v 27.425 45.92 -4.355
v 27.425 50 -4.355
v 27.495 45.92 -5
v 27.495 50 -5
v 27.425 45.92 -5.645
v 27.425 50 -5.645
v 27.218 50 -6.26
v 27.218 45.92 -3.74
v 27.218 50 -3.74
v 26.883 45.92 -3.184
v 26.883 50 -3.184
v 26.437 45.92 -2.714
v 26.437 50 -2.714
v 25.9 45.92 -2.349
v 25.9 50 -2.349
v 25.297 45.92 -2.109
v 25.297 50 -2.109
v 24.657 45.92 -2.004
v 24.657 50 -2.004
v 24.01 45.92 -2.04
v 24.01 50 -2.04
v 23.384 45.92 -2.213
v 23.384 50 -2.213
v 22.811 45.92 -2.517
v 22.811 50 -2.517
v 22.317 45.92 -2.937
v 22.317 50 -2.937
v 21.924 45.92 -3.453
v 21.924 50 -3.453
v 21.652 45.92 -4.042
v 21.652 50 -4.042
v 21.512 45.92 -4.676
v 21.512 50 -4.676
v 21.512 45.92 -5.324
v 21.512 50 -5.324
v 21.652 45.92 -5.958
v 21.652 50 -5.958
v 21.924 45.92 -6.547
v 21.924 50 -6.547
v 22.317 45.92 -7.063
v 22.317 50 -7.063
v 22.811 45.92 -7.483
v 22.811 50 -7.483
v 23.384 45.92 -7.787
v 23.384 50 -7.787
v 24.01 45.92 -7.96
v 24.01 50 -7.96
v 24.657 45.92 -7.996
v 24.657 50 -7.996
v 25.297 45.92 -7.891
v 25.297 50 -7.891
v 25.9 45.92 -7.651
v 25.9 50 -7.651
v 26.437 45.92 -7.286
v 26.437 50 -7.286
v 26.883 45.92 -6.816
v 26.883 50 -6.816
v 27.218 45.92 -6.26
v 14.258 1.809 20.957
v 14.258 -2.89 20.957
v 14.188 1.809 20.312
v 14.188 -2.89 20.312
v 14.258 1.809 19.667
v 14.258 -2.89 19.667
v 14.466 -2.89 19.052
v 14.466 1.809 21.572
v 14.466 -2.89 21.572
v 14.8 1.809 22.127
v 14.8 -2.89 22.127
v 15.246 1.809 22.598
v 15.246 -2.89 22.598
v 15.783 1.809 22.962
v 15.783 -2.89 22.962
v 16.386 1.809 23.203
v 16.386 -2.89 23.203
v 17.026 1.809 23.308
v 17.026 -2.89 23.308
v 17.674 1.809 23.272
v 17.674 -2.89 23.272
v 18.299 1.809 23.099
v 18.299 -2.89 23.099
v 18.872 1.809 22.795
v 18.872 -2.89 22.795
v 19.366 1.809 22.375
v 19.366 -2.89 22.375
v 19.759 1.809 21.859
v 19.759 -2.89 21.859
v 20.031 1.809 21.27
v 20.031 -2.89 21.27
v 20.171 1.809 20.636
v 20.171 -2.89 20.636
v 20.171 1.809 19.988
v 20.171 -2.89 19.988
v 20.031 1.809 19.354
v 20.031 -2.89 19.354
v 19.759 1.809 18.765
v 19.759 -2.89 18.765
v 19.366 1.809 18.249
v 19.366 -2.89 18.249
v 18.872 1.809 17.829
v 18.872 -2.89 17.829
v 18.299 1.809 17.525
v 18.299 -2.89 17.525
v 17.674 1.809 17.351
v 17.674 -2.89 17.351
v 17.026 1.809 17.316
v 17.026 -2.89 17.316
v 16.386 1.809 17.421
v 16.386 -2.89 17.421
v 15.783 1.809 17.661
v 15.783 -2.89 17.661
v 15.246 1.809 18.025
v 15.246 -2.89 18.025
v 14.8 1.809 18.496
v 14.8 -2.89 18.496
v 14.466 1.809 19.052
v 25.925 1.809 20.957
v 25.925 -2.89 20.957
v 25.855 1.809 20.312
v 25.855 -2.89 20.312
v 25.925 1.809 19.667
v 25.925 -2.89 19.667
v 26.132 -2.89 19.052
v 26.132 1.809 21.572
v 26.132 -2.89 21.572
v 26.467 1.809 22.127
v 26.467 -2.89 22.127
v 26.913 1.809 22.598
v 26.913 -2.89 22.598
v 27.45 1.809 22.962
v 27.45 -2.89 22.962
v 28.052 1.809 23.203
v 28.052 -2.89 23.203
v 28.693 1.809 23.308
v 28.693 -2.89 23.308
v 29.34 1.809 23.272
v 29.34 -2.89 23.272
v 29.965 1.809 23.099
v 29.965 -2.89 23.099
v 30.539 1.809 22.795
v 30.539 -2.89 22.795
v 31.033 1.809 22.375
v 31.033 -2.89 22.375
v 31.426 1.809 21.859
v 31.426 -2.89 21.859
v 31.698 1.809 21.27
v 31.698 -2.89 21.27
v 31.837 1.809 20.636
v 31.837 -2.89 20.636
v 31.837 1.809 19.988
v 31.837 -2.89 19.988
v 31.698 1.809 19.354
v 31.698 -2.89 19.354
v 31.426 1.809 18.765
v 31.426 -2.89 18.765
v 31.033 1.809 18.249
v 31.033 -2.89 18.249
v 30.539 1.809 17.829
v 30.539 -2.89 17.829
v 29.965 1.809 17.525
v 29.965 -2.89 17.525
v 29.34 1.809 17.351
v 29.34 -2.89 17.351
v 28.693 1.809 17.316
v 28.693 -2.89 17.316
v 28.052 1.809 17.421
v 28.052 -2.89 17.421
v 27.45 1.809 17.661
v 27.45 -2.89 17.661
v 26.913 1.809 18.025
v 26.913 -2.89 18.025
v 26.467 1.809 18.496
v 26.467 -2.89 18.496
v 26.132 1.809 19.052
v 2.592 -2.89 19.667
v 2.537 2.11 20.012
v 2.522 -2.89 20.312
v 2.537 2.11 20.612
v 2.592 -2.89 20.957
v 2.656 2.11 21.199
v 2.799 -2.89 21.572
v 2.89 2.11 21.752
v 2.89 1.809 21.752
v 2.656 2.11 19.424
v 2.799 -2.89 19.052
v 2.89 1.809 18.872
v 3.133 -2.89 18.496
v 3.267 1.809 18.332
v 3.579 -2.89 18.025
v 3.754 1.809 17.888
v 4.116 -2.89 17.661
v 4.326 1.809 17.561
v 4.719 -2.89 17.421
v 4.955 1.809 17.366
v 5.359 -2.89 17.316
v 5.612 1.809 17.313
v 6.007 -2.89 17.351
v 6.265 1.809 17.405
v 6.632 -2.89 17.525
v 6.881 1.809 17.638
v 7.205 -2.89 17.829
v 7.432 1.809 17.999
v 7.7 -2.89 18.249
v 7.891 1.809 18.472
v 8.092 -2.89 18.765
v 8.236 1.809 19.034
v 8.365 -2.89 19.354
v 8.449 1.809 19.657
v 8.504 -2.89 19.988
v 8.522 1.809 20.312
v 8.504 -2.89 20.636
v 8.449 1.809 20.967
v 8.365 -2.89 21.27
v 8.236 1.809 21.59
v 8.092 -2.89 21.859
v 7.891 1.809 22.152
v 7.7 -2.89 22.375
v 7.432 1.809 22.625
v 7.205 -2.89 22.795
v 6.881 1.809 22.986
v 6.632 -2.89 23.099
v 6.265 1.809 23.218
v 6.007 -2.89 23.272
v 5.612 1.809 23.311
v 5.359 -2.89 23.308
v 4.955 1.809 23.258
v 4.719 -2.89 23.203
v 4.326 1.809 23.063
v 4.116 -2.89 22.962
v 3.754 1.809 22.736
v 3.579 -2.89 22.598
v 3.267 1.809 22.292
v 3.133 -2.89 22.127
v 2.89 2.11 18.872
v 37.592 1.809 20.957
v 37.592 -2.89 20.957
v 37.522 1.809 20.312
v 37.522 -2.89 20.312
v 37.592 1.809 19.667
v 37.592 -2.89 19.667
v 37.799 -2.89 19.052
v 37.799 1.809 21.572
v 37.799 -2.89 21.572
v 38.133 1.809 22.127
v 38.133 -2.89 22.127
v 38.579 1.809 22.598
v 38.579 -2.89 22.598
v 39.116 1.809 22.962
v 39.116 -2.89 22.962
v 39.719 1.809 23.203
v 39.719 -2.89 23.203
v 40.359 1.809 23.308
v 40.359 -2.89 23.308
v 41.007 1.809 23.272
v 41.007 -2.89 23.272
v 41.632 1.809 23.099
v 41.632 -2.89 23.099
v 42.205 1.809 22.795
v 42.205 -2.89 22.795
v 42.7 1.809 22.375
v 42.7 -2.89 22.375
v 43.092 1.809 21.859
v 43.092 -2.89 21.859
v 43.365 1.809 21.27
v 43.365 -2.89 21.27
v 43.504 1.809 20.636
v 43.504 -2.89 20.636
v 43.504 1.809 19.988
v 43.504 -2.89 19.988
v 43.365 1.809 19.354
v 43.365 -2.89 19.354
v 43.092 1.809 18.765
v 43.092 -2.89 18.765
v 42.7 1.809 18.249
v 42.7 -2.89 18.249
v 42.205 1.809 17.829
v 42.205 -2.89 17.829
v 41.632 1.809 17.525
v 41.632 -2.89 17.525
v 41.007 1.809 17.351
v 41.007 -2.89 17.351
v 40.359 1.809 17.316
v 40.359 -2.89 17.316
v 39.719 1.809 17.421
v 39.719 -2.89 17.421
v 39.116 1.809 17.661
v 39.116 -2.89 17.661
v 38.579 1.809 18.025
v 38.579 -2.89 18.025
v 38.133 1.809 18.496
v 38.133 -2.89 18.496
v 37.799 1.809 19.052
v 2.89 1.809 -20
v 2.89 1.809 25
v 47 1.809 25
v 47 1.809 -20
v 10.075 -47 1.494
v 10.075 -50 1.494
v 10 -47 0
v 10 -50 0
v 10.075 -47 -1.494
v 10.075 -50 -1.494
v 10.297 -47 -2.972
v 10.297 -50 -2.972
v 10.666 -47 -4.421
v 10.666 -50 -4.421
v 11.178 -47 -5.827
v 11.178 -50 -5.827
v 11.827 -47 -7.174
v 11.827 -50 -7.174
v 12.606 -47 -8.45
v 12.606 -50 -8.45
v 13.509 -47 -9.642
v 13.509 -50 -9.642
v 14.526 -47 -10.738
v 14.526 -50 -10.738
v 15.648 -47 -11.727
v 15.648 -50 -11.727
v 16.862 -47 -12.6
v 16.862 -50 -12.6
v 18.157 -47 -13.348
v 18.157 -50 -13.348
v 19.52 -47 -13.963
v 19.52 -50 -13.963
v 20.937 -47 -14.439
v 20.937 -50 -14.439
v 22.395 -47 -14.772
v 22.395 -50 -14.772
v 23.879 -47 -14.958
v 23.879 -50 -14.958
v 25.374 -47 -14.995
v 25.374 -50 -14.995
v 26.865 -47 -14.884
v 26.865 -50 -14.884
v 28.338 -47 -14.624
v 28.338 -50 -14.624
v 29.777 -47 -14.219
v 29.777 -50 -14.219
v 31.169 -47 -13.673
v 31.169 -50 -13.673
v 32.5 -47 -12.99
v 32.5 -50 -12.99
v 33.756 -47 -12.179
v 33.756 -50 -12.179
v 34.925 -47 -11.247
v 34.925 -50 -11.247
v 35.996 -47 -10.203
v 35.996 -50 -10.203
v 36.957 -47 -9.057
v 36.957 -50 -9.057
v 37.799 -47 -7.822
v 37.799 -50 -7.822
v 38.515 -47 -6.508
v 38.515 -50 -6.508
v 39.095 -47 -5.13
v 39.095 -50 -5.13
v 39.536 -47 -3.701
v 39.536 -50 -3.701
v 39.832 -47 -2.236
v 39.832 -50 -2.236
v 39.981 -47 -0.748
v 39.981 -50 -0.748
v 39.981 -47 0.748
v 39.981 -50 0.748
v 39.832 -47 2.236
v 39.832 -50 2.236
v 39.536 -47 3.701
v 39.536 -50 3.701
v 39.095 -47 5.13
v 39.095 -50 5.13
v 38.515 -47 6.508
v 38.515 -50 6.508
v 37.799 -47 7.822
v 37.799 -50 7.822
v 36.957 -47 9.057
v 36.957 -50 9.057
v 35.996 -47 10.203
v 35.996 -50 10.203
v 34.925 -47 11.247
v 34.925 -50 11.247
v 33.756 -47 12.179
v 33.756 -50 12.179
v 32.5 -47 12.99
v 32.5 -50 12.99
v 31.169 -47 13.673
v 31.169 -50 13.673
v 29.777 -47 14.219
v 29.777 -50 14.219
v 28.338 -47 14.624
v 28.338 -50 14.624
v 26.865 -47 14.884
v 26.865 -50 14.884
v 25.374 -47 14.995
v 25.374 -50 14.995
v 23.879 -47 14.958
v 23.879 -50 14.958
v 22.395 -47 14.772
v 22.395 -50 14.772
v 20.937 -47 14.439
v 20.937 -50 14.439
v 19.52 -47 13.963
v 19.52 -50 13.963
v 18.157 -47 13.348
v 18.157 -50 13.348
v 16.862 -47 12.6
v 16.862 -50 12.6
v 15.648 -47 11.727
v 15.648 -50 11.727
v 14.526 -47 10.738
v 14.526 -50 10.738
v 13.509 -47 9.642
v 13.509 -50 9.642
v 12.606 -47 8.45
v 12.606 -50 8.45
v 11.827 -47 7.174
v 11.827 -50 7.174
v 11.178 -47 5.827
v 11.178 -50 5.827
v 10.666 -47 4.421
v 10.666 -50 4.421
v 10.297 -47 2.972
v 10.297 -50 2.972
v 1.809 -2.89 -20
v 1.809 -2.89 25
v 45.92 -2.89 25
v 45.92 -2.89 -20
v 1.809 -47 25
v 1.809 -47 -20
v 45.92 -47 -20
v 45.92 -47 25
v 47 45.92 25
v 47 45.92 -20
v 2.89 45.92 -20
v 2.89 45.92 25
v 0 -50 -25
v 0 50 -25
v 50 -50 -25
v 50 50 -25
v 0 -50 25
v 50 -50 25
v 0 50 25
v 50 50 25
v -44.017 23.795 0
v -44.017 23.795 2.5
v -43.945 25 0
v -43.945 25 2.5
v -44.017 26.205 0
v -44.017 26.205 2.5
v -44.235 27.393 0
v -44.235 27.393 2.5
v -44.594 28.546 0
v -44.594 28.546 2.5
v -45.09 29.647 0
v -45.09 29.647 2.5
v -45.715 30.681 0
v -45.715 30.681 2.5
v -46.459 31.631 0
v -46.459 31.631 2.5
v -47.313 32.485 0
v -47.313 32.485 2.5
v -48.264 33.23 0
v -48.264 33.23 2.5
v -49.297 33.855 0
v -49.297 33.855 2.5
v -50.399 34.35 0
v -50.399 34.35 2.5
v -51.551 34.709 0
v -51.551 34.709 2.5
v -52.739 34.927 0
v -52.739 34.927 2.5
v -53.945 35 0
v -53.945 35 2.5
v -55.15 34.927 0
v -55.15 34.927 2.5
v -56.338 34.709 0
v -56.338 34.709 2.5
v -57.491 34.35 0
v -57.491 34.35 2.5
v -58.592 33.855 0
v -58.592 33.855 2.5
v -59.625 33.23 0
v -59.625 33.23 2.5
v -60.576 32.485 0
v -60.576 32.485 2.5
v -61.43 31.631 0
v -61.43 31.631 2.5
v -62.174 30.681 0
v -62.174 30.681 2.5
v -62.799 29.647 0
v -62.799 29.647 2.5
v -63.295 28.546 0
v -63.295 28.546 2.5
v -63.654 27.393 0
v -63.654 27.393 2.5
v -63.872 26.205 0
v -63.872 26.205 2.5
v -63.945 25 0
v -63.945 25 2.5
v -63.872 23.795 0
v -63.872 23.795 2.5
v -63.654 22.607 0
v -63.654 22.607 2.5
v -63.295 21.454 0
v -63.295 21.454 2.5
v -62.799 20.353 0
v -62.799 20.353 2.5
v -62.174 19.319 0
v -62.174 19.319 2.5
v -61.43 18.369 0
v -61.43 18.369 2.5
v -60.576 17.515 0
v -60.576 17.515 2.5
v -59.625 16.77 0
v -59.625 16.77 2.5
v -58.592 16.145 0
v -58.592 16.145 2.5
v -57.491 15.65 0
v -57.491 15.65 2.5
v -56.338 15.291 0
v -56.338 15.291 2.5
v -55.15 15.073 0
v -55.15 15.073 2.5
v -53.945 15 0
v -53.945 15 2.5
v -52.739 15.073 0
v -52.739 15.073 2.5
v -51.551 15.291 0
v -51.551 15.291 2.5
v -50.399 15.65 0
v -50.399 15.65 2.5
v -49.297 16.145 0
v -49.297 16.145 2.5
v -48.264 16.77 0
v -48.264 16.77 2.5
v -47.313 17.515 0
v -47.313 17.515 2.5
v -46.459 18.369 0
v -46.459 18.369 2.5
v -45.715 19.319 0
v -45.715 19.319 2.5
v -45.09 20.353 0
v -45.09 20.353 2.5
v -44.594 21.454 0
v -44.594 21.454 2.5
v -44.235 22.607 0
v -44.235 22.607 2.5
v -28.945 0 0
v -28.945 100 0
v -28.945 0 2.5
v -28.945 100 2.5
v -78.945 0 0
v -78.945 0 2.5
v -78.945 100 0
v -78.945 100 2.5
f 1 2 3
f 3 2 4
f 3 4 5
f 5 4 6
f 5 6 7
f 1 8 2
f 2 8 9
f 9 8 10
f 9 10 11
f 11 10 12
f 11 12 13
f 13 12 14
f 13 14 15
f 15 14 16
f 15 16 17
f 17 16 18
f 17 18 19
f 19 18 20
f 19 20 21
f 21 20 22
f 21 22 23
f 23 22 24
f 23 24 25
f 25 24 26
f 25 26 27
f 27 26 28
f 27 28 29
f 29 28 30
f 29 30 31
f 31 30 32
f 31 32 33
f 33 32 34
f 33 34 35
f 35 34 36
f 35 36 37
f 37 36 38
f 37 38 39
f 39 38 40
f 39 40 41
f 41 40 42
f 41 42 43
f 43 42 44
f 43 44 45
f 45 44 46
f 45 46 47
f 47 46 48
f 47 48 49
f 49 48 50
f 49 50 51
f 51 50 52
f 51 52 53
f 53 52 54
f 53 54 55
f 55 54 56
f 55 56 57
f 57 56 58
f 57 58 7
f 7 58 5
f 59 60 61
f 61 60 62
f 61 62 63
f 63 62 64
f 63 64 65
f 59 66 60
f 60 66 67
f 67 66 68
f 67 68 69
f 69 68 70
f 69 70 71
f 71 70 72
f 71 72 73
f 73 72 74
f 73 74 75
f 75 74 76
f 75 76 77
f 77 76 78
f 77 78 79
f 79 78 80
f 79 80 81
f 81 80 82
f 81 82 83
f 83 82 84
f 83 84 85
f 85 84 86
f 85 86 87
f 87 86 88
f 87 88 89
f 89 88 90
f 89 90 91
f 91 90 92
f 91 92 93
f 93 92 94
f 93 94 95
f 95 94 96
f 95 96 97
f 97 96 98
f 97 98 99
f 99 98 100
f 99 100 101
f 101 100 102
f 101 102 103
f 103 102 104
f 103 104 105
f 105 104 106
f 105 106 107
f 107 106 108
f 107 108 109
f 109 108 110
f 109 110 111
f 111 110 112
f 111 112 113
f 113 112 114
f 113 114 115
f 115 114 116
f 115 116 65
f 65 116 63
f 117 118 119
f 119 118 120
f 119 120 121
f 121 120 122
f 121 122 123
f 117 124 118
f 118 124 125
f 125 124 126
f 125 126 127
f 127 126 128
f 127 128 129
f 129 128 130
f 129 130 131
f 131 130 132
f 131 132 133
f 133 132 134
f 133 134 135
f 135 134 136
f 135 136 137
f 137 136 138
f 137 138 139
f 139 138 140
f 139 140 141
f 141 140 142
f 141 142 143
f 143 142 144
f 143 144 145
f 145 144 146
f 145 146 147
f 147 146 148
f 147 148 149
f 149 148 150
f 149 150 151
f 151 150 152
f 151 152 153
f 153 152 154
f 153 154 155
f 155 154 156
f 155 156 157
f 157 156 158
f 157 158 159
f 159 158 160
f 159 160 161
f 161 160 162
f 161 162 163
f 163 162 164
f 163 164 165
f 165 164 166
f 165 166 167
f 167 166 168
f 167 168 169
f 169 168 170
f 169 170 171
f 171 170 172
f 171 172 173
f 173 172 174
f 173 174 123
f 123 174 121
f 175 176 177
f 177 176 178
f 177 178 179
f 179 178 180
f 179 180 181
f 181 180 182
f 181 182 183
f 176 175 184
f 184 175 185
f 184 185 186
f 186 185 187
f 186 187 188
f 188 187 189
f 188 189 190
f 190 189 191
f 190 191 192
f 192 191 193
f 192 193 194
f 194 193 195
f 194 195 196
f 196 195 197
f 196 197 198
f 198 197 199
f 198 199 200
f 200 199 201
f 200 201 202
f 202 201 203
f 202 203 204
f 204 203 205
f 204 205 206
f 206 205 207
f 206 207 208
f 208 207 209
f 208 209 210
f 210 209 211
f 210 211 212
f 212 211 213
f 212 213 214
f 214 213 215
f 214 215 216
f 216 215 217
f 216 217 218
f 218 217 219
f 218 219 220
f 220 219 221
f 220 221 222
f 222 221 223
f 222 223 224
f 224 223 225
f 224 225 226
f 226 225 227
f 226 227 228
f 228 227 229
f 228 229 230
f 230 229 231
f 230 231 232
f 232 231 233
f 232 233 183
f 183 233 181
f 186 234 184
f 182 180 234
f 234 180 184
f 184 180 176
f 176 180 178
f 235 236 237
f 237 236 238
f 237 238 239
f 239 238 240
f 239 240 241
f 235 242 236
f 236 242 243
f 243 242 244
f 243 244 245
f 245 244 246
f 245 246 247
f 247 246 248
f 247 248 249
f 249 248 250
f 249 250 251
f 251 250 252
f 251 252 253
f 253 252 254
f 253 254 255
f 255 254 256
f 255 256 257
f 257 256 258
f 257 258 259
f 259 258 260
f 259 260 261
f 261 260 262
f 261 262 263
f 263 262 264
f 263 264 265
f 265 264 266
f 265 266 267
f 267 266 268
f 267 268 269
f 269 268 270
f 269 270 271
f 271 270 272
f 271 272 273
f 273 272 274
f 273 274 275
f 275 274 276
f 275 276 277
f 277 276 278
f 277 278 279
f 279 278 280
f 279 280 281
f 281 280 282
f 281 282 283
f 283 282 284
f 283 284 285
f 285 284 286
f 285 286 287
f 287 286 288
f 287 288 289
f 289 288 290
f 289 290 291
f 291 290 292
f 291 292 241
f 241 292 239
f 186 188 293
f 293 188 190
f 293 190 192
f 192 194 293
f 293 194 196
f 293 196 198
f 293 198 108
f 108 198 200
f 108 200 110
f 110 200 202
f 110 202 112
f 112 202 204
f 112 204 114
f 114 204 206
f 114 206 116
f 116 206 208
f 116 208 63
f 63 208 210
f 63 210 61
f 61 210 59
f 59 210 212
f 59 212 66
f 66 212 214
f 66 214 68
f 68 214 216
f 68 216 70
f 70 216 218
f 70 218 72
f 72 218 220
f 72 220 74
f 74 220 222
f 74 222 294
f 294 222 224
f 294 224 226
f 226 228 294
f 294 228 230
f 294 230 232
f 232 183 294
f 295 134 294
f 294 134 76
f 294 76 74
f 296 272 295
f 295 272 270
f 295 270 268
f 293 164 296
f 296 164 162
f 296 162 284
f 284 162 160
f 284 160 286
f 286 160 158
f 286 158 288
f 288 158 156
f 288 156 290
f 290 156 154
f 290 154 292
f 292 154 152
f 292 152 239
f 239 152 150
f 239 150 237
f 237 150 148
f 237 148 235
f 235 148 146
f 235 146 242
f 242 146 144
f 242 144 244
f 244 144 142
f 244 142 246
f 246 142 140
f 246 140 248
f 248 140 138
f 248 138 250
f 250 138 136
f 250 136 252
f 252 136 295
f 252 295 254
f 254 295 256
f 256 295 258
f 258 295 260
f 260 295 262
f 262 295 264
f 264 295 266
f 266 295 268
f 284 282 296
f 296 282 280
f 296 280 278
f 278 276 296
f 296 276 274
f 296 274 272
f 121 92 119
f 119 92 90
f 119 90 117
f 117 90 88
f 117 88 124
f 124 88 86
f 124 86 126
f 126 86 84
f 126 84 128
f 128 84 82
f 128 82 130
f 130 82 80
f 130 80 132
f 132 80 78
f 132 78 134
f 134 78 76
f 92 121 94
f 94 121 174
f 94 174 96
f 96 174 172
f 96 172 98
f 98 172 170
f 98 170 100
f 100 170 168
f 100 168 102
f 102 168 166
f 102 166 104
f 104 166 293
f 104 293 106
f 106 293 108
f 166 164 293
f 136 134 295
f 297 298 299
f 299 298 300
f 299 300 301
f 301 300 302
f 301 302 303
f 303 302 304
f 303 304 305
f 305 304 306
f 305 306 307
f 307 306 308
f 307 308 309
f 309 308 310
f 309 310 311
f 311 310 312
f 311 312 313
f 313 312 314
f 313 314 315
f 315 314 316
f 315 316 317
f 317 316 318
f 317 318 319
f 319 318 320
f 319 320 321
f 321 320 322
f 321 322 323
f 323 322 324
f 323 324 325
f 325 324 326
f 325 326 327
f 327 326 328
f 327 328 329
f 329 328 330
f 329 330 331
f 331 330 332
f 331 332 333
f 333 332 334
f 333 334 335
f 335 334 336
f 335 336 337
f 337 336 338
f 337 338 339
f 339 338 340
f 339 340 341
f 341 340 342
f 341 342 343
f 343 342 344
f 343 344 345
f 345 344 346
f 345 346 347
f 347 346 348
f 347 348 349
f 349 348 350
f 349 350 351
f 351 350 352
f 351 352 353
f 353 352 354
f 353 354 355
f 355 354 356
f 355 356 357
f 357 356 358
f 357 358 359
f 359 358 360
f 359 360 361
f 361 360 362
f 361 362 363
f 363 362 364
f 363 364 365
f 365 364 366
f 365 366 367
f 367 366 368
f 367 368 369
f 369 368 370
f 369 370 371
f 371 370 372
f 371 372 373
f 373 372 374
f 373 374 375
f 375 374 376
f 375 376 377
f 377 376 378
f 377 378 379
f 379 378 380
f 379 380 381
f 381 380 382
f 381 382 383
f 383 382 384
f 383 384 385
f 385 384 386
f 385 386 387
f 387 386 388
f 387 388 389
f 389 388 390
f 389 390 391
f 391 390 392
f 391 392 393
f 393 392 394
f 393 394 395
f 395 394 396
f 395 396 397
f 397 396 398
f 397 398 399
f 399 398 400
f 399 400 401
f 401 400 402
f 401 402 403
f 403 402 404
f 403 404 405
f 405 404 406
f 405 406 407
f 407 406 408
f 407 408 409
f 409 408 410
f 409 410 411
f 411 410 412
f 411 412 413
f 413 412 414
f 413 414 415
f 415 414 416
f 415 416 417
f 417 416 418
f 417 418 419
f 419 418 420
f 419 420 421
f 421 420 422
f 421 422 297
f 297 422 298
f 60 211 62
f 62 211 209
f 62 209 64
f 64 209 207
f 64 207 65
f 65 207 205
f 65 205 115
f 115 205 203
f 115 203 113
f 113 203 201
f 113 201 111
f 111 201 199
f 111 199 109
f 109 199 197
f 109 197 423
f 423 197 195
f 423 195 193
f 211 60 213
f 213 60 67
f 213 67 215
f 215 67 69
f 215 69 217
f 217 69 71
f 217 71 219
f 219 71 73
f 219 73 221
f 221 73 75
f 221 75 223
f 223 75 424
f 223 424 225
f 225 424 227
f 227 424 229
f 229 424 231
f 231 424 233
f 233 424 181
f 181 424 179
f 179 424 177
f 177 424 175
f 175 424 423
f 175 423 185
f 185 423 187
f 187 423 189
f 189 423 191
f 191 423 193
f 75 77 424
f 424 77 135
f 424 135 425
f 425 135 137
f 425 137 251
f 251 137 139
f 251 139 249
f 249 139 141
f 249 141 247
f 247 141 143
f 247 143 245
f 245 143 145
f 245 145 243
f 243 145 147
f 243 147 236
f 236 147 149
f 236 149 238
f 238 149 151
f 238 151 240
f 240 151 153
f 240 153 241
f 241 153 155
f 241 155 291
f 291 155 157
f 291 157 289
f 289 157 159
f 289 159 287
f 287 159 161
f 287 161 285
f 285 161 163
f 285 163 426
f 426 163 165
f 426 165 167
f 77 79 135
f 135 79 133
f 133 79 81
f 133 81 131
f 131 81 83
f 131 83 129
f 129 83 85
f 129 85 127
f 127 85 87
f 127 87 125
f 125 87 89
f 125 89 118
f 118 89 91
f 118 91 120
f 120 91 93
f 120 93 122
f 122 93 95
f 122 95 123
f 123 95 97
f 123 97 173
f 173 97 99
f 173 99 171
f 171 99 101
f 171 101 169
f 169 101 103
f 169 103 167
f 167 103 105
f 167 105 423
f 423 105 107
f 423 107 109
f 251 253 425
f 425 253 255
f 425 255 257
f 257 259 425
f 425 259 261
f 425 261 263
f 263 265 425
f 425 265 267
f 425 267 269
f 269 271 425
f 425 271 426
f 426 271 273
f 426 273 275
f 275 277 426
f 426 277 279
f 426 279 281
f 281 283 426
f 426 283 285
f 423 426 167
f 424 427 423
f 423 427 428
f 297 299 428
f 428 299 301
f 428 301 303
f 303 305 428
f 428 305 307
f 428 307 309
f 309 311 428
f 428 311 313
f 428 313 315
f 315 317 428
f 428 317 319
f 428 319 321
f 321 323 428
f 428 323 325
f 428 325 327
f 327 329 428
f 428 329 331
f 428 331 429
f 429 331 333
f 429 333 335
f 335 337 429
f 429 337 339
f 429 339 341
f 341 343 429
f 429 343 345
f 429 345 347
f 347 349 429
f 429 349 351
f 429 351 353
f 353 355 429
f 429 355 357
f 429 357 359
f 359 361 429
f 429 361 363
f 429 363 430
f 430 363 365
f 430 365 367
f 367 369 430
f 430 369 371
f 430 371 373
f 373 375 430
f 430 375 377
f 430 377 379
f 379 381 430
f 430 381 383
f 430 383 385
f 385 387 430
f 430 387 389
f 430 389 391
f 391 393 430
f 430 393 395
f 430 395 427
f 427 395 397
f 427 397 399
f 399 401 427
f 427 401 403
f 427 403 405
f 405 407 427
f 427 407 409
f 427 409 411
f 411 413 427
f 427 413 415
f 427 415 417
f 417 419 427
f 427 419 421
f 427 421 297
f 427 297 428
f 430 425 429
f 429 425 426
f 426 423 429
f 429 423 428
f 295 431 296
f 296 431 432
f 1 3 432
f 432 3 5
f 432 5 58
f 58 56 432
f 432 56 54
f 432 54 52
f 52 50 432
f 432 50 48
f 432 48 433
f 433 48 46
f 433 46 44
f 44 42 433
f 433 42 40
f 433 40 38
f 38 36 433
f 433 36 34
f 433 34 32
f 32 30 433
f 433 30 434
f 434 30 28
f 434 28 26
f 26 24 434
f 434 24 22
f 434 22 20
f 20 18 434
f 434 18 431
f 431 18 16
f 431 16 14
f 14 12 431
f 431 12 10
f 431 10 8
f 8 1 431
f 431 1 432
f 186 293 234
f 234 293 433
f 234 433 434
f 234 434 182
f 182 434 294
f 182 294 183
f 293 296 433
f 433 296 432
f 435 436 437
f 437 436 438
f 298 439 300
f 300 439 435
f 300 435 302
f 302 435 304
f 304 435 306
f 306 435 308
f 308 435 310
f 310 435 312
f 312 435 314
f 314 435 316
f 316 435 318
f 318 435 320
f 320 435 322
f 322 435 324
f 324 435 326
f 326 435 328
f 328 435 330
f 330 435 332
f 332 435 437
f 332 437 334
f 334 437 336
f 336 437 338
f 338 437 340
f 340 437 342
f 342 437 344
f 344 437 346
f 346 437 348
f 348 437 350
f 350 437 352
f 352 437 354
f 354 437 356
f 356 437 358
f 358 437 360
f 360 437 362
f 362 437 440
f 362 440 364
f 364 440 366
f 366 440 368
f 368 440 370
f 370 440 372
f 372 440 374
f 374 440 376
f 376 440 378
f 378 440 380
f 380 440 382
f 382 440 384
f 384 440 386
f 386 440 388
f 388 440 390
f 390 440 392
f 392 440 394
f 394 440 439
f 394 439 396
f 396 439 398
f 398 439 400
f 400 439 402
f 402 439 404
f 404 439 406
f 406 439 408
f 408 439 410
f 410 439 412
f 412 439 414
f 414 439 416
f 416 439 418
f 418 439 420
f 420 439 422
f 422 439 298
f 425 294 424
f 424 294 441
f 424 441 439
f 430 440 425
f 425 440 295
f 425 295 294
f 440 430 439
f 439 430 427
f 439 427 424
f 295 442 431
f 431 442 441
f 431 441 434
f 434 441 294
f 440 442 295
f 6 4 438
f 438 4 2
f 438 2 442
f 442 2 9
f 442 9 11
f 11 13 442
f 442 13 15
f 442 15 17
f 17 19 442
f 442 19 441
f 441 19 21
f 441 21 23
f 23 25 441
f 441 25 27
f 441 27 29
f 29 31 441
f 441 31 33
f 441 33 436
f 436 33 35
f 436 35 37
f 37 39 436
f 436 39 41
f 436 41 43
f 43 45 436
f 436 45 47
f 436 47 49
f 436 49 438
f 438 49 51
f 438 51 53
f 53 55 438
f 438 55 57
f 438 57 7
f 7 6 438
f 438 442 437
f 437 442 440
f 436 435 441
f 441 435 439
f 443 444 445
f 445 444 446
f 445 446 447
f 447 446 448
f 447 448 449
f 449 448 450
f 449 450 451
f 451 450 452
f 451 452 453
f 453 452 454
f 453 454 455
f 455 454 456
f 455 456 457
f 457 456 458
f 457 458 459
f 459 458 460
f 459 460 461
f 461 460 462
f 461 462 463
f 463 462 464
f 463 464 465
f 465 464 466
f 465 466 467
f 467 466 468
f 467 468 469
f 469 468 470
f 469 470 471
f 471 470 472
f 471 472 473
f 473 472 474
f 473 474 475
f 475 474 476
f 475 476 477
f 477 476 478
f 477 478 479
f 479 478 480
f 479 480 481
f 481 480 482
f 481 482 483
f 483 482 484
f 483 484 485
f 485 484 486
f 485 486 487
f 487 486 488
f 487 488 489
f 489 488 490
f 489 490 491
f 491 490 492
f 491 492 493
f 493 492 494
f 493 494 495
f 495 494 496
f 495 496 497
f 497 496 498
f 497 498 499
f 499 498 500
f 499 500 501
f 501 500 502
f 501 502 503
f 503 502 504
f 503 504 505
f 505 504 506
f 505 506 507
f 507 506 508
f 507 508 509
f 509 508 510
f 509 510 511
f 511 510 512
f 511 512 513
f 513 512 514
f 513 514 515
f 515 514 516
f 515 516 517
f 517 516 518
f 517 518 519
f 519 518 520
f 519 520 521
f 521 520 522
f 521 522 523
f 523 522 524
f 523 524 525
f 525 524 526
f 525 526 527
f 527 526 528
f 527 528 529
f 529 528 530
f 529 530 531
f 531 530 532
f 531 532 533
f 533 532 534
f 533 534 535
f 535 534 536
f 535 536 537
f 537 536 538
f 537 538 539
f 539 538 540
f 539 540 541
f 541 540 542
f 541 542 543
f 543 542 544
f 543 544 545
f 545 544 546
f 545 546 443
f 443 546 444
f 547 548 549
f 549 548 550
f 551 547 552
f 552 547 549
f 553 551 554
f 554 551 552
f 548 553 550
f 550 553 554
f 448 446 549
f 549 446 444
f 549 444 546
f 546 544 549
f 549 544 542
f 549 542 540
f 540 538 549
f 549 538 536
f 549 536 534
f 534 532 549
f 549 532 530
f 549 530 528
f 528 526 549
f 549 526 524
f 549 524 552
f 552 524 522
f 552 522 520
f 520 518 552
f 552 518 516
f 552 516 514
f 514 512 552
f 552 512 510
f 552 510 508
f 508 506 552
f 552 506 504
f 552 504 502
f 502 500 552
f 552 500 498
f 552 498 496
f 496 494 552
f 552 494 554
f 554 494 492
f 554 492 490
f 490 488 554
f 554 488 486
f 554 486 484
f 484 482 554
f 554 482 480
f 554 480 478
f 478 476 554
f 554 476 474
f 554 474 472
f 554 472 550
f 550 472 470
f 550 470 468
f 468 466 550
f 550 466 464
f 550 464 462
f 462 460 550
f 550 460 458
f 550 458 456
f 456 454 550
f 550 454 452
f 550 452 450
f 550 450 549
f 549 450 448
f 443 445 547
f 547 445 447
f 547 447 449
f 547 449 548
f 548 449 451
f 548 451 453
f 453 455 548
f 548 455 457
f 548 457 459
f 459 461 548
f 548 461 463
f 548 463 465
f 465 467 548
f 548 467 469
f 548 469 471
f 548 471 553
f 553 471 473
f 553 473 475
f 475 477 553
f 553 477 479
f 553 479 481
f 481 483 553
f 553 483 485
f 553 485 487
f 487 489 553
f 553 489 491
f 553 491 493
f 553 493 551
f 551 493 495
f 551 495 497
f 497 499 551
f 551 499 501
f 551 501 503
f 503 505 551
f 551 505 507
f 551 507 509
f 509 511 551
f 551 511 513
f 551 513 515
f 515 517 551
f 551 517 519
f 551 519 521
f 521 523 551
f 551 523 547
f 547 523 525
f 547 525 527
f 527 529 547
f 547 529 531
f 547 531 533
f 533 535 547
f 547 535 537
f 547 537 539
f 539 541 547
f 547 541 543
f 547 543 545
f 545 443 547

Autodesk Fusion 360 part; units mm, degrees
sketch "Esquisse1" plane through (0, 0, 0) normal (1, 0, 0) x (0, 1, 0)
  line L0 (50, 25) -> (-50, 25)
  line L1 (-50, 25) -> (-50, -25)
  line L2 (-50, -25) -> (50, -25)
  line L3 (50, -25) -> (50, 25)
  line L4 (50, 25) -> (-50, -25) construction
  line L5 (-50, 25) -> (50, -25) construction
  line L6 (-45.5279, 22.7639) -> (-2.2988, 22.7639)
  line L7 (-2.2988, 22.7639) -> (-2.2988, -22.3105)
  line L8 (-2.2988, -22.3105) -> (-45.5279, -22.3105)
  line L9 (-45.5279, -22.3105) -> (-45.5279, 22.7639)
  line L10 (45.5279, -22.7639) -> (2.2988, -22.7639)
  line L11 (45.5279, 22.3105) -> (45.5279, -22.7639)
  line L12 (2.2988, 22.3105) -> (45.5279, 22.3105)
  line L13 (2.2988, -22.7639) -> (2.2988, 22.3105)
  dimension "d5" = 100
  dimension "d6" = 50
  dimension "d7" = 5
  dimension "d9" = 360
extrude "Extrusion1" add sketch "Esquisse1" along normal blind 50 contours L0 L1 L2 L3 | L6 L7 L8 L9 | L10 L11 L12 L13 makes body 1
sketch "Esquisse2" plane through (0, 0, 25) normal (0, 0, 1) x (-1, 0, 0)
  line L0 (0, -50) -> (0, 50)
  line L1 (0, 50) -> (-50, 50)
  line L2 (-50, 50) -> (-50, -50)
  line L3 (-50, -50) -> (0, -50)
  line L4 (-2.8897, -45.9196) -> (-47, -45.9196)
  line L5 (-47, -45.9196) -> (-47, -1.8093)
  line L6 (-47, -1.8093) -> (-2.8897, -1.8093)
  line L7 (-2.8897, -1.8093) -> (-2.8897, -45.9196)
  line L8 (-1.8093, 47) -> (-1.8093, 2.8897)
  line L9 (-1.8093, 2.8897) -> (-45.9196, 2.8897)
  line L10 (-45.9196, 2.8897) -> (-45.9196, 47)
  line L11 (-45.9196, 47) -> (-1.8093, 47)
  dimension "d12" = 5
  dimension "d13" = 3
  dimension "d15" = 90
extrude "Extrusion2" cut sketch "Esquisse2" against normal blind 45 contours L4 L5 L6 L7 | L8 L9 L10 L11 bodies 1
sketch "Esquisse3" plane through (0, -50, 0) normal (0, -1, 0) x (1, 0, 0)
  line L0 (0, 25) -> (0, -25)
  line L1 (0, -25) -> (50, -25)
  line L2 (50, -25) -> (50, 25)
  line L3 (50, 25) -> (0, 25)
  circle A0 centre (25, 0) radius 15
  dimension "d20" = 30
  dimension "d21" = 25
  dimension "d22" = 25
extrude "Extrusion3" cut sketch "Esquisse3" against normal blind 5 contours A0 bodies 1
sketch "Esquisse4" plane through (0, -2.8897, 0) normal (0, -1, 0) x (1, 0, 0)
  line L0 (45.9196, 25) -> (1.8093, 25)
  line L1 (1.8093, 25) -> (1.8093, -20)
  line L2 (1.8093, -20) -> (45.9196, -20)
  line L3 (45.9196, -20) -> (45.9196, 25)
  circle A0 centre (5.5216, 20.3119) radius 3
  circle A1 centre (17.1883, 20.3119) radius 3
  circle A2 centre (28.855, 20.3119) radius 3
  circle A3 centre (40.5216, 20.3119) radius 3
  point P0 (17.1883, 20.3119)
  point P1 (28.855, 20.3119)
  point P2 (40.5216, 20.3119)
  dimension "d25" = 6
  dimension "d28" = 35
  dimension "d29" = 0
  dimension "d30" = 6
  dimension "d31" = 6
  dimension "d32" = 6
extrude "Extrusion4" cut sketch "Esquisse4" against normal blind 5 contours A0 | A1 | A2 | A3 bodies 1
sketch "Esquisse5" plane through (0, 50, 0) normal (0, 1, 0) x (-1, 0, 0)
  line L0 (0, -25) -> (0, 25)
  line L1 (0, 25) -> (-50, 25)
  line L2 (-50, 25) -> (-50, -25)
  line L3 (-50, -25) -> (0, -25)
  circle A0 centre (-24.4949, -5) radius 3
  dimension "d35" = 6
  dimension "d36" = 30
  dimension "d37" = 25
extrude "Extrusion5" cut sketch "Esquisse5" against normal blind 5 contours A0 bodies 1
sketch "Esquisse6" plane through (0, 0, 0) normal (0, 0, 1) x (1, 0, 0)
  line L0 (-28.9446, 0) -> (-78.9446, 0)
  line L1 (-78.9446, 0) -> (-78.9446, 100)
  line L2 (-78.9446, 100) -> (-28.9446, 100)
  line L3 (-28.9446, 100) -> (-28.9446, 0)
  dimension "d40" = 100
  dimension "d41" = 50
sketch "Esquisse7" plane through (0, 0, 0) normal (0, 0, 1) x (1, 0, 0)
extrude "Extrusion6" add sketch "Esquisse6" along normal blind 2.5 separate body makes body 2
sketch "Esquisse8" plane through (0, 0, 2.5) normal (0, 0, 1) x (-1, 0, 0)
  line L0 (28.9446, -100) -> (78.9446, -100)
  line L1 (78.9446, -100) -> (78.9446, 0)
  line L2 (78.9446, 0) -> (28.9446, 0)
  line L3 (28.9446, 0) -> (28.9446, -100)
  circle A0 centre (53.9446, -25) radius 10
  dimension "d44" = 25
  dimension "d45" = 20
  dimension "d46" = 25
extrude "Extrusion7" cut sketch "Esquisse8" against normal blind 2.5 contours A0 bodies 2
equation "largeur = 50 mm"
equation "longueur = 100 mm"
equation "hauteur = 50 mm"
equation "trou = 45 mm"
equation "d5 = longueur"
equation "d6 = largeur"
equation "d10 = hauteur"
equation "d16 = -trou"
equation "cercle = 30 mm"
equation "petitcercle = 6 mm"
equation "d20 = cercle"
equation "d25 = petitcercle"
equation "d30 = petitcercle"
equation "d31 = petitcercle"
equation "d32 = petitcercle"
equation "d35 = petitcercle"
equation "d40 = longueur"
equation "d41 = largeur"
equation "d46 = largeur / 2"
